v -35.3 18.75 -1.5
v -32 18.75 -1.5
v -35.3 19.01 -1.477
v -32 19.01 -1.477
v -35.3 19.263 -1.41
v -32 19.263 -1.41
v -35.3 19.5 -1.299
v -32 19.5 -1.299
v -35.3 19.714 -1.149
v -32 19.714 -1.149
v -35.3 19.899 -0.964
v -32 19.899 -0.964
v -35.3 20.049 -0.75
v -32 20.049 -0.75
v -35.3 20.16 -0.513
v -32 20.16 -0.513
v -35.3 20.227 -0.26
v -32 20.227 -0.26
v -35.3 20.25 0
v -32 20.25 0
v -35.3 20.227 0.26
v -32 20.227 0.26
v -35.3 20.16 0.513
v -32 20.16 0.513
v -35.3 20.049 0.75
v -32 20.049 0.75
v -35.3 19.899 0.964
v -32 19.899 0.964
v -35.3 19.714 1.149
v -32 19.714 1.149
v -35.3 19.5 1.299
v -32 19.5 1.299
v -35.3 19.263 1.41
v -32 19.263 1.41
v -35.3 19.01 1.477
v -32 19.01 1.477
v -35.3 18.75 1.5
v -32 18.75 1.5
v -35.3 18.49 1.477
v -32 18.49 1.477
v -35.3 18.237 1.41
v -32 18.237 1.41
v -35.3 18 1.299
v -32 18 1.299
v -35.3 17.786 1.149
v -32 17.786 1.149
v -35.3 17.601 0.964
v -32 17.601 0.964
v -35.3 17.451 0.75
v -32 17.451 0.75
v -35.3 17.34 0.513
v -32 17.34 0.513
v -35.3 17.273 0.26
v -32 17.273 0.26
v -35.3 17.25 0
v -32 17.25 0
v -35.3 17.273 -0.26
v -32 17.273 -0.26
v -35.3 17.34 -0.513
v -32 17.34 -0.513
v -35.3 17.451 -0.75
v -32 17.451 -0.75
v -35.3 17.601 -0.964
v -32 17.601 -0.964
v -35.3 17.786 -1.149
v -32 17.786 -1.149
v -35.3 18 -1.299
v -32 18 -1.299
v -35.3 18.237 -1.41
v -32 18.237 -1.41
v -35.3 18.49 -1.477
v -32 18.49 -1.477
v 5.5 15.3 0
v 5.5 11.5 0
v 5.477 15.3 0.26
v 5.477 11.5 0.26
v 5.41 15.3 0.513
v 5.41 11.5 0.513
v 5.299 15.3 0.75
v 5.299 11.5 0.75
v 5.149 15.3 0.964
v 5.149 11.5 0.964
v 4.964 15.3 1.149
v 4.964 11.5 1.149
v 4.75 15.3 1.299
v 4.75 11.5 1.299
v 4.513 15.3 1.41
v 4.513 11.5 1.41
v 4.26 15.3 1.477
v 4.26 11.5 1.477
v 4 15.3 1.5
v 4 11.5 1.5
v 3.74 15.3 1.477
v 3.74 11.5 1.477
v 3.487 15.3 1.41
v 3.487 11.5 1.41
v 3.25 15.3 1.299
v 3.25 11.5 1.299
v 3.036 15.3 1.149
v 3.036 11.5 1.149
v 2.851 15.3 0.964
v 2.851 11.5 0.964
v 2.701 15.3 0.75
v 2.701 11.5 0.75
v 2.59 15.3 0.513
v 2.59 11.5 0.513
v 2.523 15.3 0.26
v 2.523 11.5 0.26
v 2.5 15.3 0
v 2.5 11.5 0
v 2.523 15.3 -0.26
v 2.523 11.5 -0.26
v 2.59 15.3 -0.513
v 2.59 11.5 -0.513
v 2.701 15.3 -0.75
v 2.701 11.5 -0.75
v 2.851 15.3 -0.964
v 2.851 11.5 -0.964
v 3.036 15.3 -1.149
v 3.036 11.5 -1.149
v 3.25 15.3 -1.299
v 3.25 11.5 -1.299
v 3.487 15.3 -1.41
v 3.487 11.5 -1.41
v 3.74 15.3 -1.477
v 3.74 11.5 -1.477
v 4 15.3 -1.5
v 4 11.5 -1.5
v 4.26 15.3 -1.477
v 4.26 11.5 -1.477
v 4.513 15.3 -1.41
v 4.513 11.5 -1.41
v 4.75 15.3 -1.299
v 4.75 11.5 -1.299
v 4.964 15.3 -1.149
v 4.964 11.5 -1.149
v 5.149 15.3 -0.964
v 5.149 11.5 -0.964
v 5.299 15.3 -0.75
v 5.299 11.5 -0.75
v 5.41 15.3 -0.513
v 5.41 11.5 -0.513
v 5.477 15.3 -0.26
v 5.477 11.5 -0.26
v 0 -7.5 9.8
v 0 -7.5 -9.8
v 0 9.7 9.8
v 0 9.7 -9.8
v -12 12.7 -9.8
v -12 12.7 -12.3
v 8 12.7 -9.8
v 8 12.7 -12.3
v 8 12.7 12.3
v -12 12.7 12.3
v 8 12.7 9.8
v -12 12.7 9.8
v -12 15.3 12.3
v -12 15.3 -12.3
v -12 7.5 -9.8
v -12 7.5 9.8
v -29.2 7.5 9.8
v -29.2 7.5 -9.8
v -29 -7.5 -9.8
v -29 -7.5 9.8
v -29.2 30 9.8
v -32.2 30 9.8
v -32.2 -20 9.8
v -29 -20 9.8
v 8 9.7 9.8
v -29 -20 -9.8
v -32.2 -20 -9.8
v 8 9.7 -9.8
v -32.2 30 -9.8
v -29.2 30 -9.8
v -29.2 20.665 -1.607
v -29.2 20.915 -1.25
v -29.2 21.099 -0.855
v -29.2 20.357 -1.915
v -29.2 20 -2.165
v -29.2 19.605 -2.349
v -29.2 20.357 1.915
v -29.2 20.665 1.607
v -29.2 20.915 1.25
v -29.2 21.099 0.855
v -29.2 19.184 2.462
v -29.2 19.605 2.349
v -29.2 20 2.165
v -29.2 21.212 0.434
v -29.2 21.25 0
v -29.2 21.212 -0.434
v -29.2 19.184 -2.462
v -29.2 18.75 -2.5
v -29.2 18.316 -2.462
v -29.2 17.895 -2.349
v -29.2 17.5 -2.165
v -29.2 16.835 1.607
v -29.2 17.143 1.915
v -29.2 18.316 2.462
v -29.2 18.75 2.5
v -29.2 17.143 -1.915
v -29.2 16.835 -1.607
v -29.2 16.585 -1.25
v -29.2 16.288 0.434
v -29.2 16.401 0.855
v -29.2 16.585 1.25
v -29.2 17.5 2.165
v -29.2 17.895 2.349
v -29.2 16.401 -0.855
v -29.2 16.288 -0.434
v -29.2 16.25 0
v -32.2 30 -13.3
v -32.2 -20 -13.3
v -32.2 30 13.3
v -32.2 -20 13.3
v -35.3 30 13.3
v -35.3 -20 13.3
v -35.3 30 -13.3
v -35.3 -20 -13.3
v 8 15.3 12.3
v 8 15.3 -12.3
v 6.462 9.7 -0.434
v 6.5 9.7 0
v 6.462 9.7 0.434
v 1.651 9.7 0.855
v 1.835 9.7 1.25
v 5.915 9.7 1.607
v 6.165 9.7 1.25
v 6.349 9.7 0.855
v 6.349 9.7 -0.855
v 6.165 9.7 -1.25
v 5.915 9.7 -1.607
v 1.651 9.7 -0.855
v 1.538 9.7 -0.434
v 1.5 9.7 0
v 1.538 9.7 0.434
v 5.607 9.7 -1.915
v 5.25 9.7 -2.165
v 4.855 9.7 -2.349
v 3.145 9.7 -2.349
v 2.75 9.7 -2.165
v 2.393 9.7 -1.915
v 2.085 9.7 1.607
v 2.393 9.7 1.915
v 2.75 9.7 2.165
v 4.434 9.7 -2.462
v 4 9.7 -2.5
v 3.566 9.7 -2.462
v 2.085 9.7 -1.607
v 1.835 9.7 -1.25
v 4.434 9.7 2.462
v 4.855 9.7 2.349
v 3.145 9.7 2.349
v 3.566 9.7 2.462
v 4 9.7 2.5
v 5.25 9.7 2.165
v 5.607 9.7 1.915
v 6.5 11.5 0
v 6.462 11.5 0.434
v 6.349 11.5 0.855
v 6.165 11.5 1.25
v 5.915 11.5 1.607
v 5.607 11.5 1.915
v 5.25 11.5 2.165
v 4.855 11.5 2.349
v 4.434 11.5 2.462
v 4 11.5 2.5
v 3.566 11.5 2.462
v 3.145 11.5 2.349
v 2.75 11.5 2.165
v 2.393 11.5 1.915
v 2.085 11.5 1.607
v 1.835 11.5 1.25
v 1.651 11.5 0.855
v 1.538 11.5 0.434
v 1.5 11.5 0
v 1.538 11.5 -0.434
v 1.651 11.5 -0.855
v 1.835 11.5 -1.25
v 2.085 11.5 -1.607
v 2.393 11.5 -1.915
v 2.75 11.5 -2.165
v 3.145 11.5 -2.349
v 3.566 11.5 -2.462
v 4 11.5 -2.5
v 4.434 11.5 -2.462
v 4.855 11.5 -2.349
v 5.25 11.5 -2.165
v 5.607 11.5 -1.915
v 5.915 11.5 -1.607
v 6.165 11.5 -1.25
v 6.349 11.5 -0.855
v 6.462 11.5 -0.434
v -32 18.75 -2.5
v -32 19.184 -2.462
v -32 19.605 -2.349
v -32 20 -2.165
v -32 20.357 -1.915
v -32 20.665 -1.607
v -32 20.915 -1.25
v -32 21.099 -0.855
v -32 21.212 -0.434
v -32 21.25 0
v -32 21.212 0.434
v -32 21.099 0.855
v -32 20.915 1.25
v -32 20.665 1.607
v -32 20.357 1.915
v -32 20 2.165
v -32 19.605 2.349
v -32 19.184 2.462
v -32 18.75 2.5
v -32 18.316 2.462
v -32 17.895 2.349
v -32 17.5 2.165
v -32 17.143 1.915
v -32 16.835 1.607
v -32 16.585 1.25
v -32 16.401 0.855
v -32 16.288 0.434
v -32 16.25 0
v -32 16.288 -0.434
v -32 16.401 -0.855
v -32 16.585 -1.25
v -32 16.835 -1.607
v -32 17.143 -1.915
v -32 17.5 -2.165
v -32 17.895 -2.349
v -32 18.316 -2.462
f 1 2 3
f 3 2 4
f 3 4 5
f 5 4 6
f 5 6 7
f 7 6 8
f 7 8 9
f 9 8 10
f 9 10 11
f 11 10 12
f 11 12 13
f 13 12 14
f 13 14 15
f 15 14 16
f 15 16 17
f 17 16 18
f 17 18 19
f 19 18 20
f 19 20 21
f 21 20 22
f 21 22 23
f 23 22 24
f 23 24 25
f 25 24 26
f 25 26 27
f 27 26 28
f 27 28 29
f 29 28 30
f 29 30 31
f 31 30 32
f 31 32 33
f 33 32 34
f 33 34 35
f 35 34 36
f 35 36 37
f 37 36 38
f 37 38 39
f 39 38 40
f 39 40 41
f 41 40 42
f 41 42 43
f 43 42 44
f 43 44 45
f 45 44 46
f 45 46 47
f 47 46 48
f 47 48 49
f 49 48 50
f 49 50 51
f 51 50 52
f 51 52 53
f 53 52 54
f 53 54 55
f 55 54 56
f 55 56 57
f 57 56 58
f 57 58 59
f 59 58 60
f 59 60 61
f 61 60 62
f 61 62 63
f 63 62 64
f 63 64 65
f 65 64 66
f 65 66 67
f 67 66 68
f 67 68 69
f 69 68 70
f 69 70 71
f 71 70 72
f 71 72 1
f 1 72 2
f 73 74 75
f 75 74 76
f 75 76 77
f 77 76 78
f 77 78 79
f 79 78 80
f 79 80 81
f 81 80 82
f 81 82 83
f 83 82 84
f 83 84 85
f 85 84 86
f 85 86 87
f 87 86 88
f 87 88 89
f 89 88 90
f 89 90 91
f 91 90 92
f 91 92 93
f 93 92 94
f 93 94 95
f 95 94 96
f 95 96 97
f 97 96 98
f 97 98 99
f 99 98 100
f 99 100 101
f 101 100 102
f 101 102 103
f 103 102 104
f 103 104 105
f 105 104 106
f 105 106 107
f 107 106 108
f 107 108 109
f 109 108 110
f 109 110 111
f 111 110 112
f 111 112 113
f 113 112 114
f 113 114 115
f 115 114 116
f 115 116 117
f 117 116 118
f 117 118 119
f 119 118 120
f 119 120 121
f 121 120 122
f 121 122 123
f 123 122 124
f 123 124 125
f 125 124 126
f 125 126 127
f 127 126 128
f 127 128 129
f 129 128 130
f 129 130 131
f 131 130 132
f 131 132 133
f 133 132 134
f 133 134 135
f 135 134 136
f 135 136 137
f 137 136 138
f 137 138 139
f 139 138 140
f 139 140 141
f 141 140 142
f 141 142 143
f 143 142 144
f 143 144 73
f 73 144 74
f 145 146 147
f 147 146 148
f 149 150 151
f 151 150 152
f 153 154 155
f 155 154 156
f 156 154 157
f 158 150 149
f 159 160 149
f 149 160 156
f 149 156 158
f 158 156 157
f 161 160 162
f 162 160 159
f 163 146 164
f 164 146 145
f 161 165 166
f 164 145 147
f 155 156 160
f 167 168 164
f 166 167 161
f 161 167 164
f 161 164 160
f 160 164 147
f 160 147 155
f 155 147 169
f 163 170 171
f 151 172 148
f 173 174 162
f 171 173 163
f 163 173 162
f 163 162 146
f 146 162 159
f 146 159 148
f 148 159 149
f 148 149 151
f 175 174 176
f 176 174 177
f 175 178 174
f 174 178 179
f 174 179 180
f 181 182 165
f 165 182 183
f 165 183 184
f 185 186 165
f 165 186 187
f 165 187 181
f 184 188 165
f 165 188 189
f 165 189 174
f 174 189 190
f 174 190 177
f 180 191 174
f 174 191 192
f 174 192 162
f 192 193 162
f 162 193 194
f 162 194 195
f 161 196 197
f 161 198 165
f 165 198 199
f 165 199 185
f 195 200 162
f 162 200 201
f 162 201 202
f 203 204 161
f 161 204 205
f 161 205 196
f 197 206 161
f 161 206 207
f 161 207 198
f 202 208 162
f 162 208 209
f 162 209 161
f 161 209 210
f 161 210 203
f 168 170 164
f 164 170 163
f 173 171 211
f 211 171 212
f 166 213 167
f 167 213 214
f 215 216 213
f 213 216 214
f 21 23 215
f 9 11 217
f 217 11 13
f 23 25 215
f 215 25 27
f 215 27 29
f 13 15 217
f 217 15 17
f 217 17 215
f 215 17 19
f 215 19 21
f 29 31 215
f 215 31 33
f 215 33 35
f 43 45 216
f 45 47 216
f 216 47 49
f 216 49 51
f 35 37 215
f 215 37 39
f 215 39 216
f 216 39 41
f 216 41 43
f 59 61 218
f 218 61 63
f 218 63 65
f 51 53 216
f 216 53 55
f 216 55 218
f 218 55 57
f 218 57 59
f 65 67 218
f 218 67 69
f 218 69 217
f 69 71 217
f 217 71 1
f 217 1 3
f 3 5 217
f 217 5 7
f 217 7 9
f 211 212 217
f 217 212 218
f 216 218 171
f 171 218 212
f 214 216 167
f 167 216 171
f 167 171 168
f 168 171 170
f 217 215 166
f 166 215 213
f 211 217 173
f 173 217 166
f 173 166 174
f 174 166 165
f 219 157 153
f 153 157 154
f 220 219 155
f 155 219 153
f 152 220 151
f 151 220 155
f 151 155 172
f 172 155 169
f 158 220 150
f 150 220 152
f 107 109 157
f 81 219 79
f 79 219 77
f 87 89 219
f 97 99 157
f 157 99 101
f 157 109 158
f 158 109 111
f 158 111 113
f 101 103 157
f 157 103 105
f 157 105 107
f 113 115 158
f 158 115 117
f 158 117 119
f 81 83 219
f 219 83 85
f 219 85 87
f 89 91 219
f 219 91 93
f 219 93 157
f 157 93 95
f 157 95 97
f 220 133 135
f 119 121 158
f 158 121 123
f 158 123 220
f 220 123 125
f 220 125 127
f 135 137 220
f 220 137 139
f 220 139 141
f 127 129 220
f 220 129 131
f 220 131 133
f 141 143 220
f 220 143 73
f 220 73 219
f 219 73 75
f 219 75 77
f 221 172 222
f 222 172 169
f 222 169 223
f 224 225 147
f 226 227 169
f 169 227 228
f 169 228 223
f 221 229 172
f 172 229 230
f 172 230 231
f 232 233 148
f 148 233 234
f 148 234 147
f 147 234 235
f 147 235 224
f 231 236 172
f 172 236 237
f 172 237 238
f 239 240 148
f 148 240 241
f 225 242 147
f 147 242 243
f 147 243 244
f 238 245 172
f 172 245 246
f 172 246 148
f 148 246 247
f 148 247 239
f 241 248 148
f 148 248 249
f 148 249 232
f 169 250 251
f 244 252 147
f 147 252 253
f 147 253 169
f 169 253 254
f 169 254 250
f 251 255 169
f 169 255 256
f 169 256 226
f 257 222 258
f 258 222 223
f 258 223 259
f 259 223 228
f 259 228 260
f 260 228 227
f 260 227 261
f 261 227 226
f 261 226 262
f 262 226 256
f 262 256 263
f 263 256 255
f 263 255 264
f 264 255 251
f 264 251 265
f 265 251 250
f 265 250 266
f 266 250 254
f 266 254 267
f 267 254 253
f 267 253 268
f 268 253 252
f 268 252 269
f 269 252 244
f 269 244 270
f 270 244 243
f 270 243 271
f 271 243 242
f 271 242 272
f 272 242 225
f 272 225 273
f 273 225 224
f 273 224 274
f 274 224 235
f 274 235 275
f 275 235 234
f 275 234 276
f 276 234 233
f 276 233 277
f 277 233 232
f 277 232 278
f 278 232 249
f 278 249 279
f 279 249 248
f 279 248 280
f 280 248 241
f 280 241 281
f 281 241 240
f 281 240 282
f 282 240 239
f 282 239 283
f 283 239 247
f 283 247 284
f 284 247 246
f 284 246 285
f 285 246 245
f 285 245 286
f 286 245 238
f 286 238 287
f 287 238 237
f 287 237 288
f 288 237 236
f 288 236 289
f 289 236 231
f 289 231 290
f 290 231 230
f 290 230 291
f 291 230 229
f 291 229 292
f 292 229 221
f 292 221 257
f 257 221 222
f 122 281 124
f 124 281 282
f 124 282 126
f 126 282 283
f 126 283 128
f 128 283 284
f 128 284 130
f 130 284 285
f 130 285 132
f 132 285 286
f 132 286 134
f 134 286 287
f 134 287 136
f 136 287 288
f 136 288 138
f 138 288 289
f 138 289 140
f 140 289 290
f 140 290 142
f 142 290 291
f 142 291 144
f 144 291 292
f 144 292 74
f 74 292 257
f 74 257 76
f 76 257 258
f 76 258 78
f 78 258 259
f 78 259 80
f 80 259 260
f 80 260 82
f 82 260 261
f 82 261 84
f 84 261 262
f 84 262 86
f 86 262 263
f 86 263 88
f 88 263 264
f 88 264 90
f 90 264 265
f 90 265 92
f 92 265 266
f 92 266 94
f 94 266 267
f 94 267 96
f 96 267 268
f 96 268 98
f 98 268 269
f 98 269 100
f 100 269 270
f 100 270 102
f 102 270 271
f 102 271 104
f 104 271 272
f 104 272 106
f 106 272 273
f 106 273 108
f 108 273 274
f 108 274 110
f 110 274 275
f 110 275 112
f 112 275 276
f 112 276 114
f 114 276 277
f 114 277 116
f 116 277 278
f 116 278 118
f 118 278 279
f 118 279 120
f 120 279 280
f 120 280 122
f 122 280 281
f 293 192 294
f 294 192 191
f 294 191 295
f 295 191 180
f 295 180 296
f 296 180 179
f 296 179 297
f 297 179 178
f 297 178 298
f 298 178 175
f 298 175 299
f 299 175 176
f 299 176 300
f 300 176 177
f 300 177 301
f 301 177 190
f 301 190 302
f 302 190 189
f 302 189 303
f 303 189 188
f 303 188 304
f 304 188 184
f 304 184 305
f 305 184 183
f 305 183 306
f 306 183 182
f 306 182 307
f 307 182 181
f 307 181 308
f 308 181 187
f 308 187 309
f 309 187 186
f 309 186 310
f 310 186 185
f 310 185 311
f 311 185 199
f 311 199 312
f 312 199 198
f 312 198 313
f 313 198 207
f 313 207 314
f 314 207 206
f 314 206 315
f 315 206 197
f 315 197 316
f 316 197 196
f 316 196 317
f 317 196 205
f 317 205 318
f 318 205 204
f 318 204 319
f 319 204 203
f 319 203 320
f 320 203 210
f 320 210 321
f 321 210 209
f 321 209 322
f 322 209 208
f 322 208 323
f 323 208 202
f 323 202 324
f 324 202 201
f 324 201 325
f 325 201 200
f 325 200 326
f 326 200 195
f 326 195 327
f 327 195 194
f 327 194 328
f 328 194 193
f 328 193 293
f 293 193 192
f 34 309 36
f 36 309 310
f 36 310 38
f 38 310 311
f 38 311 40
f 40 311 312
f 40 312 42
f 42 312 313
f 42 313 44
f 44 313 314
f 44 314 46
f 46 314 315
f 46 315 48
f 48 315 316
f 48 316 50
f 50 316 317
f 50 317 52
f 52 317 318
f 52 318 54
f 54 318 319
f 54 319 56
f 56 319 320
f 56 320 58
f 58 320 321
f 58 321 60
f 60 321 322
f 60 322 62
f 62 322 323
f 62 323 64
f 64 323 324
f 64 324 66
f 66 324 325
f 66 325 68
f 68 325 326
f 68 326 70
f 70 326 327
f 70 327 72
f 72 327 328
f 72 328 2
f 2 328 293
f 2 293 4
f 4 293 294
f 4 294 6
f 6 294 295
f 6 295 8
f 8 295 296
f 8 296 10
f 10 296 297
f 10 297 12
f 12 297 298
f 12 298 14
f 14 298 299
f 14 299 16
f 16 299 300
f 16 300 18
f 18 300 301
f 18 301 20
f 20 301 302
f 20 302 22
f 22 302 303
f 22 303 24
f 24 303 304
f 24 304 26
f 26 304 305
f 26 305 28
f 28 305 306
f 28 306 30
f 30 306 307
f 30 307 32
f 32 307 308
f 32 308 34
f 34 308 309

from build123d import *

# Parameters (mm, degrees)
BOSS_EXTRUDE1_DEPTH      = 10
BOSS_EXTRUDE2_DEPTH      = 30
BOSS_EXTRUDE2_DEPTH_BACK = 20
SKETCH3_W                = 20
SKETCH3_H                = 25
BOSS_EXTRUDE3_DEPTH      = 3
SKETCH4_W                = 20
SKETCH4_H                = 3
BOSS_EXTRUDE4_DEPTH      = 8
SKETCH5_R                = 1.5
CUT_EXTRUDE1_DEPTH       = 49.09105946
SKETCH5_3_R              = 2.5
SKETCH5_3_R_2            = 1.5
CUT_EXTRUDE2_DEPTH       = 2
SKETCH6_R                = 1.5
CUT_EXTRUDE3_DEPTH       = 6.5
SKETCH6_3_R              = 2.5
SKETCH6_3_R_2            = 1.5
CUT_EXTRUDE4_DEPTH       = 3
MOVE_FACE1_BY            = 0.2
MOVE_FACE1_2_BY          = 0.2
MOVE_FACE1_3_BY          = 0.2
MOVE_FACE1_4_BY          = 0.2
MOVE_FACE1_5_BY          = 0.2
MOVE_FACE1_6_BY          = 0.2
MOVE_FACE1_7_BY          = 0.2
MOVE_FACE1_8_BY          = 0.2
MOVE_FACE1_9_BY          = 0.2
MOVE_FACE1_10_BY         = 0.2
MOVE_FACE1_11_BY         = 0.2
MOVE_FACE1_12_BY         = 0.2
MOVE_FACE1_13_BY         = 0.2
MOVE_FACE1_14_BY         = 0.2


with BuildPart() as part:
    # Sketch1 → Boss-Extrude1 (new, symmetric)
    with BuildSketch(Plane.XY):
        Polygon((0, -7.5), (-32, -7.5), (-32, 7.5), (-12, 7.5), (-12, 12.5), (0, 12.5), align=None)
    extrude(amount=BOSS_EXTRUDE1_DEPTH, both=True)

    # Sketch2 → Boss-Extrude2 (add, two sides)
    with BuildSketch(Plane(origin=(0, 0, 0), x_dir=(1, 0, 0), z_dir=(0, 1, 0))) as boss_extrude2_sk:
        Polygon((-32, 13.5), (-35.5, 13.5), (-35.5, -13.5), (-32, -13.5), (-32, -10), (-29, -10), (-29, 10), (-32, 10), align=None)
    extrude(amount=BOSS_EXTRUDE2_DEPTH)
    extrude(boss_extrude2_sk.sketch, amount=-BOSS_EXTRUDE2_DEPTH_BACK)

    # Sketch3 → Boss-Extrude3 (add)
    with BuildSketch(Plane(origin=(0, 12.5, 0), x_dir=(1, 0, 0), z_dir=(0, 1, 0))):
        with Locations((-2, 0)):
            Rectangle(SKETCH3_W, SKETCH3_H)
    extrude(amount=BOSS_EXTRUDE3_DEPTH)

    # Sketch4 → Boss-Extrude4 (add)
    with BuildSketch(Plane(origin=(0, 0, 0), x_dir=(0, 0, -1), z_dir=(1, 0, 0))):
        with Locations((0, 11)):
            Rectangle(SKETCH4_W, SKETCH4_H)
    extrude(amount=BOSS_EXTRUDE4_DEPTH)

    # Sketch5 → Cut-Extrude1 (cut, through all)
    with BuildSketch(Plane.XZ.offset(-9.5)):
        with Locations((4, 0)):
            Circle(SKETCH5_R)
    extrude(amount=-CUT_EXTRUDE1_DEPTH, mode=Mode.SUBTRACT)

    # Sketch5<3> → Cut-Extrude2 (cut)
    with BuildSketch(Plane.XZ.offset(-9.5)):
        with Locations((4, 0)):
            Circle(SKETCH5_3_R)
        with Locations((4, 0)):
            Circle(SKETCH5_3_R_2, mode=Mode.SUBTRACT)
    extrude(amount=-CUT_EXTRUDE2_DEPTH, mode=Mode.SUBTRACT)

    # Sketch6 → Cut-Extrude3 (cut)
    with BuildSketch(Plane(origin=(-29, 0, 0), x_dir=(0, 0, -1), z_dir=(1, 0, 0))):
        with Locations((0, 18.75)):
            Circle(SKETCH6_R)
    extrude(amount=-CUT_EXTRUDE3_DEPTH, mode=Mode.SUBTRACT)

    # Sketch6<3> → Cut-Extrude4 (cut)
    with BuildSketch(Plane(origin=(-29, 0, 0), x_dir=(0, 0, -1), z_dir=(1, 0, 0))):
        with Locations((0, 18.75)):
            Circle(SKETCH6_3_R)
        with Locations((0, 18.75)):
            Circle(SKETCH6_3_R_2, mode=Mode.SUBTRACT)
    extrude(amount=-CUT_EXTRUDE4_DEPTH, mode=Mode.SUBTRACT)

    # Move Face1: a face moved inward by 0.2
    extrude(part.faces().sort_by_distance((7.2, 9.5, 0))[0], amount=MOVE_FACE1_BY, dir=(0, 1, 0), mode=Mode.SUBTRACT)

    # Move Face1 2: a face moved inward by 0.2
    extrude(part.faces().sort_by_distance((-29, 24.375, 0))[0], amount=MOVE_FACE1_2_BY, dir=(-1, 0, 0), mode=Mode.SUBTRACT)

    # Move Face1 3: a face moved inward by 0.2
    extrude(part.faces().sort_by_distance((-2, 12.5, -11.25))[0], amount=MOVE_FACE1_3_BY, dir=(0, 1, 0), mode=Mode.SUBTRACT)

    # Move Face1 4: a face moved inward by 0.2
    extrude(part.faces().sort_by_distance((-2, 14, -12.5))[0], amount=MOVE_FACE1_4_BY, dir=(0, 0, 1), mode=Mode.SUBTRACT)

    # Move Face1 5: a face moved inward by 0.2
    extrude(part.faces().sort_by_distance((-2.086039354, 15.5, 0))[0], amount=MOVE_FACE1_5_BY, dir=(0, -1, 0), mode=Mode.SUBTRACT)

    # Move Face1 6: a face moved inward by 0.2
    extrude(part.faces().sort_by_distance((-2, 14, 12.5))[0], amount=MOVE_FACE1_6_BY, dir=(0, 0, -1), mode=Mode.SUBTRACT)

    # Move Face1 7: a face moved inward by 0.2
    extrude(part.faces().sort_by_distance((-2, 12.5, 11.25))[0], amount=MOVE_FACE1_7_BY, dir=(0, 1, 0), mode=Mode.SUBTRACT)

    # Move Face1 8: a face moved inward by 0.2
    extrude(part.faces().sort_by_distance((-33.75, 5, -13.5))[0], amount=MOVE_FACE1_8_BY, dir=(0, 0, 1), mode=Mode.SUBTRACT)

    # Move Face1 9: a face moved inward by 0.2
    extrude(part.faces().sort_by_distance((-32, 5, -11.75))[0], amount=MOVE_FACE1_9_BY, dir=(-1, 0, 0), mode=Mode.SUBTRACT)

    # Move Face1 10: a face moved inward by 0.2
    extrude(part.faces().sort_by_distance((-16.661434978, 2.412556054, -10))[0], amount=MOVE_FACE1_10_BY, dir=(0, 0, 1), mode=Mode.SUBTRACT)

    # Move Face1 11: a face moved inward by 0.2
    extrude(part.faces().sort_by_distance((-35.5, 4.92762622, 0))[0], amount=MOVE_FACE1_11_BY, dir=(1, 0, 0), mode=Mode.SUBTRACT)

    # Move Face1 12: a face moved inward by 0.2
    extrude(part.faces().sort_by_distance((-16.661434978, 2.412556054, 10))[0], amount=MOVE_FACE1_12_BY, dir=(0, 0, -1), mode=Mode.SUBTRACT)

    # Move Face1 13: a face moved inward by 0.2
    extrude(part.faces().sort_by_distance((-32, 5, 11.75))[0], amount=MOVE_FACE1_13_BY, dir=(-1, 0, 0), mode=Mode.SUBTRACT)

    # Move Face1 14: a face moved inward by 0.2
    extrude(part.faces().sort_by_distance((-33.75, 5, 13.5))[0], amount=MOVE_FACE1_14_BY, dir=(0, 0, -1), mode=Mode.SUBTRACT)


solid = part.part
